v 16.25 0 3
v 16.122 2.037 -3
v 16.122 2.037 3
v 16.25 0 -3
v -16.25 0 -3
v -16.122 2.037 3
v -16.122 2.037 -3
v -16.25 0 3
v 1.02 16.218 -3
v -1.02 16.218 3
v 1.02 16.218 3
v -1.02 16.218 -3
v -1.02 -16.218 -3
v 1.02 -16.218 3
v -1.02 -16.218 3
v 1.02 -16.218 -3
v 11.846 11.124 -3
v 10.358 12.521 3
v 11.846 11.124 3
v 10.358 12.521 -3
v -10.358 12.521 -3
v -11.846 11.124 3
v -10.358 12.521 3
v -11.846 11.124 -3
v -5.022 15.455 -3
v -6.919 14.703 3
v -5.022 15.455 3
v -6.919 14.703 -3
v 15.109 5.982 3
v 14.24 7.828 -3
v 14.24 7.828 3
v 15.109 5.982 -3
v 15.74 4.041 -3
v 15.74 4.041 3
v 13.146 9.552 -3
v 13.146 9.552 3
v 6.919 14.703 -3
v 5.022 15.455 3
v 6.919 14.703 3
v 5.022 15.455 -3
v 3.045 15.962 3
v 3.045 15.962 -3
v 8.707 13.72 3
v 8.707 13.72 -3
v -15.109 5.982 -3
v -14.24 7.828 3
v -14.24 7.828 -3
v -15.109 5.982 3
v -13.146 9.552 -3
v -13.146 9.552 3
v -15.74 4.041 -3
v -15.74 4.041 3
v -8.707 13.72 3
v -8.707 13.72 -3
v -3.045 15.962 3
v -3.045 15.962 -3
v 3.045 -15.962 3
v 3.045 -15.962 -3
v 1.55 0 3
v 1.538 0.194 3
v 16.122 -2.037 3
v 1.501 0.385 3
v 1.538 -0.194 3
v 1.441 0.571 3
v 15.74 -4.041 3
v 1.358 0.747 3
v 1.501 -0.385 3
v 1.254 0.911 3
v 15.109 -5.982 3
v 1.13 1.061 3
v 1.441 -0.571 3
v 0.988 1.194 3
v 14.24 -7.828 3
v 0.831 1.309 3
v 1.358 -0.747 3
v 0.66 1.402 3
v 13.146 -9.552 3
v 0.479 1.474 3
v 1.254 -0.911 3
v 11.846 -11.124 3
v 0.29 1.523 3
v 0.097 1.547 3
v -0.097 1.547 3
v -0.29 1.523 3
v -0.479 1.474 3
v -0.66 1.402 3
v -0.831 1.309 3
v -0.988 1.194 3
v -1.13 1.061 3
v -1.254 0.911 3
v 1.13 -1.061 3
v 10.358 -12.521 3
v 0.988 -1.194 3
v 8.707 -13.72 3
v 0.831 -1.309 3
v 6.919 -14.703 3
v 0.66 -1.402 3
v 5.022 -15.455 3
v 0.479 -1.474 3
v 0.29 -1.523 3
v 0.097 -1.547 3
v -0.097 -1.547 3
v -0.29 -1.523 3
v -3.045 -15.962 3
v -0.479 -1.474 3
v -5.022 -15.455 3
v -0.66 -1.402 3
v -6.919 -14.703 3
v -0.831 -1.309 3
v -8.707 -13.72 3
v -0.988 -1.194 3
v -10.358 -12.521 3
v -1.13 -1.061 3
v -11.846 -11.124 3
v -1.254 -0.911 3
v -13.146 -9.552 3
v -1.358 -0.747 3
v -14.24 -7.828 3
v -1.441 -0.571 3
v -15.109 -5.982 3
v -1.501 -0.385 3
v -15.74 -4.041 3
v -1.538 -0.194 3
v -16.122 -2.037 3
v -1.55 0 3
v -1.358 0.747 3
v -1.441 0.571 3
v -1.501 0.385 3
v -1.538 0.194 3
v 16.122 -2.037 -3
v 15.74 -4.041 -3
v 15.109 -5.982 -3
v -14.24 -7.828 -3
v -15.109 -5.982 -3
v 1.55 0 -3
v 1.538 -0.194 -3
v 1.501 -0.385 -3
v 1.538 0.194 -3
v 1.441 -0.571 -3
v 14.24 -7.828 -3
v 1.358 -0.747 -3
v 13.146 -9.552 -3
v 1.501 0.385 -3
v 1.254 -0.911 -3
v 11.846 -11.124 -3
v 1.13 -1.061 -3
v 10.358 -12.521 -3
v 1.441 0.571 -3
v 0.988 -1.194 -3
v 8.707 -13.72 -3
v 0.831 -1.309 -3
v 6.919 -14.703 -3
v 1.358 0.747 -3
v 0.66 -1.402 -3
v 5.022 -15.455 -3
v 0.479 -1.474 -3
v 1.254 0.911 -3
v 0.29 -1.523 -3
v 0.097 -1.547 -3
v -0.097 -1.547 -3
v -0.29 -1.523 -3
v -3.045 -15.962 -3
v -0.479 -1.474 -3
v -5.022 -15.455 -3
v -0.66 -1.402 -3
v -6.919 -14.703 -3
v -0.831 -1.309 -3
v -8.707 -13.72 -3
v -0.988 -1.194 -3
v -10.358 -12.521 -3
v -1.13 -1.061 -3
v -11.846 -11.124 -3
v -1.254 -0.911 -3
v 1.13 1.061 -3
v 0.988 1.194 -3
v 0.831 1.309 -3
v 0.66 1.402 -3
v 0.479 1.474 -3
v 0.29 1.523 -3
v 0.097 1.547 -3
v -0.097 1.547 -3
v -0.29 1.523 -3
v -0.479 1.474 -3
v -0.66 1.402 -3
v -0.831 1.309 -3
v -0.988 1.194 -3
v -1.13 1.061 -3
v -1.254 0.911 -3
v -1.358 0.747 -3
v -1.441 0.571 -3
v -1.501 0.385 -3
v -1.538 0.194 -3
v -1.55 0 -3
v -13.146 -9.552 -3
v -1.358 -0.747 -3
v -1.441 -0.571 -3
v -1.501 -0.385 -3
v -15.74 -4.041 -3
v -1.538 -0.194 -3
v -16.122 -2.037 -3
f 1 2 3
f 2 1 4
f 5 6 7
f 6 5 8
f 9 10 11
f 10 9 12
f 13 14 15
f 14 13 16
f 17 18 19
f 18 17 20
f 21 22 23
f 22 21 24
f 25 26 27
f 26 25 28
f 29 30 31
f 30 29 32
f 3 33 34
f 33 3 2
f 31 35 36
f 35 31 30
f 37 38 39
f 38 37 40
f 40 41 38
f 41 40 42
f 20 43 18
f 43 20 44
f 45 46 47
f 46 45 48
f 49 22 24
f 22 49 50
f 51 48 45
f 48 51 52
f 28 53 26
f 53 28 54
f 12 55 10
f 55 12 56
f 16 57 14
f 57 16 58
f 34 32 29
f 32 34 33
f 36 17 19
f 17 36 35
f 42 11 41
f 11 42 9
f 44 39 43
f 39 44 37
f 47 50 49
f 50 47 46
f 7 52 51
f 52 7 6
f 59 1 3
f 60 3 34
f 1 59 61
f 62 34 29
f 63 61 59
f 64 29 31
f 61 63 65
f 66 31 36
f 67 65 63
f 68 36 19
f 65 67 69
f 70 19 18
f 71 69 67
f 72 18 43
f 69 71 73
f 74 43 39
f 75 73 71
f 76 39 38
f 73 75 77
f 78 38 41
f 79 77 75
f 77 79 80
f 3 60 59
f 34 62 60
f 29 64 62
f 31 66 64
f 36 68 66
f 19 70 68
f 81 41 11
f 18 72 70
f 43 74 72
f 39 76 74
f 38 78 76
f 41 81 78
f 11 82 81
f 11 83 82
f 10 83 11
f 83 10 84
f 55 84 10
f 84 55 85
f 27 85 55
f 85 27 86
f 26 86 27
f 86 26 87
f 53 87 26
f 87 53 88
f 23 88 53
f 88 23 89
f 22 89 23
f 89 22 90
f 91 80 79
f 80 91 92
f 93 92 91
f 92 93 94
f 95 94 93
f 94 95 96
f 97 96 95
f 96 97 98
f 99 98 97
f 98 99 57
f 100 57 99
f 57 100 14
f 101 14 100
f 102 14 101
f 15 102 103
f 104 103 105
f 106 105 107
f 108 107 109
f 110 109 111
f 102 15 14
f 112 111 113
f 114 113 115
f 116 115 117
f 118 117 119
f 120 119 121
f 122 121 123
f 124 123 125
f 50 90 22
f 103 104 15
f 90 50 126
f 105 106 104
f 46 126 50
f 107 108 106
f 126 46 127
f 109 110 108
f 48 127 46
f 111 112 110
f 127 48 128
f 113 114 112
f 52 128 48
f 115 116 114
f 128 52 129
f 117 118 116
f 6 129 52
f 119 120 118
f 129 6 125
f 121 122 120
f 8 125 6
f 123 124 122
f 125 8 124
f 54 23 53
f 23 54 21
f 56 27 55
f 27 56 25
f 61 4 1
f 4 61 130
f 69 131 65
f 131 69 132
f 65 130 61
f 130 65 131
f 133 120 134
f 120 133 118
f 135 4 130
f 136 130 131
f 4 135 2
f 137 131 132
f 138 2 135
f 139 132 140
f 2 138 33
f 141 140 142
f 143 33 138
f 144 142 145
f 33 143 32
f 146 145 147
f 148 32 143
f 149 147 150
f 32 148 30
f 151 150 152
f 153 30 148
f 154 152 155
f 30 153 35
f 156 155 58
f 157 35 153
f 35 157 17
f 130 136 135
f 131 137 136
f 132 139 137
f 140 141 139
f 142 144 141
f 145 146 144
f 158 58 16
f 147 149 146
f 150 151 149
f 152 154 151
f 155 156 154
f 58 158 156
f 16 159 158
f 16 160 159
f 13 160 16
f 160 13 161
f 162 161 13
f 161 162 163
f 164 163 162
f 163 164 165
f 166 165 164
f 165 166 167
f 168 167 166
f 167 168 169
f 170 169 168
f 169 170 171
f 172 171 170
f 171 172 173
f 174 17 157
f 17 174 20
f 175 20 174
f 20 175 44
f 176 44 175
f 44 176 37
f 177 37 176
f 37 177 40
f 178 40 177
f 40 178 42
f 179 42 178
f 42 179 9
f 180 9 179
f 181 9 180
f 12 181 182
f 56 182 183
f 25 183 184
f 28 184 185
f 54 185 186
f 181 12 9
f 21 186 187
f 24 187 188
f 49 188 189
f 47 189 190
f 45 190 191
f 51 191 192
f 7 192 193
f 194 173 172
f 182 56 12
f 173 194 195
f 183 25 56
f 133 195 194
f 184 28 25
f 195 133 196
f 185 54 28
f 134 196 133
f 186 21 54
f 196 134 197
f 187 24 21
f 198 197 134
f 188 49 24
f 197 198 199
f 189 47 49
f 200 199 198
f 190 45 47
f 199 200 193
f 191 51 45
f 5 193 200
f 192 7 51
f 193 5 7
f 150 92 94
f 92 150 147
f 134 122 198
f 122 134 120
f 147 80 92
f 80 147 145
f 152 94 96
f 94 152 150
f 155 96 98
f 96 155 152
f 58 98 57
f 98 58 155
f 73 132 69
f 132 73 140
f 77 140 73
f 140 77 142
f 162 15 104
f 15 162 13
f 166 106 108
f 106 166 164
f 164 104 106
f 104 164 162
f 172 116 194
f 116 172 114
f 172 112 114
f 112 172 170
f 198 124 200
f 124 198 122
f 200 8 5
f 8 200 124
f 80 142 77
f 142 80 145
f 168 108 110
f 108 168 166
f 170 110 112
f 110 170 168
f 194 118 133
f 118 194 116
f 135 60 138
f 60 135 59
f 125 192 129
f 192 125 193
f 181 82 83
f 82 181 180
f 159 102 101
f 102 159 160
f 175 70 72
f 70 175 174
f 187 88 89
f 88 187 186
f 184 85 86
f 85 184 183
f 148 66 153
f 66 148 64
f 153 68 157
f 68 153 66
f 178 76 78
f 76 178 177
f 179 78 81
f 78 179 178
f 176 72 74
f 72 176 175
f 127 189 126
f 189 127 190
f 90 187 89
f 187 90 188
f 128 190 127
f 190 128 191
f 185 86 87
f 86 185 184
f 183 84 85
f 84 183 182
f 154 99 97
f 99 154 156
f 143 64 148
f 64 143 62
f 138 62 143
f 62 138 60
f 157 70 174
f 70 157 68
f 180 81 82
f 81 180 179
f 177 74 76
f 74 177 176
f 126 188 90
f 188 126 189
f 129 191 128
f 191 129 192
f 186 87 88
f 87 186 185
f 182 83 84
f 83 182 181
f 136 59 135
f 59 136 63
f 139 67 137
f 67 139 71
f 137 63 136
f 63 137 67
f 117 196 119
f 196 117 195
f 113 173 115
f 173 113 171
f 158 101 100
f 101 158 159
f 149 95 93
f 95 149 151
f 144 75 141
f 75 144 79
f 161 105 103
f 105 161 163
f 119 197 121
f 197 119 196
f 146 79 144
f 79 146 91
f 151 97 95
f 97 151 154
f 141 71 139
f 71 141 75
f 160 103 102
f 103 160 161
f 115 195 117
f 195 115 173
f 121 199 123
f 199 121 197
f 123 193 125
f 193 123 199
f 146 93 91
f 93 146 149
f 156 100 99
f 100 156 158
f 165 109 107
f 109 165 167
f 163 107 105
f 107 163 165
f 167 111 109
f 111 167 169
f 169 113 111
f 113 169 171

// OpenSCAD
$fn = 50;


difference() {
	union() {
		translate(v = [0, 0, -3.0000000000]) {
			cylinder(h = 6, r = 16.2500000000);
		}
	}
	union() {
		translate(v = [0, 0, -100.0000000000]) {
			cylinder(h = 200, r = 1.5500000000);
		}
	}
}
